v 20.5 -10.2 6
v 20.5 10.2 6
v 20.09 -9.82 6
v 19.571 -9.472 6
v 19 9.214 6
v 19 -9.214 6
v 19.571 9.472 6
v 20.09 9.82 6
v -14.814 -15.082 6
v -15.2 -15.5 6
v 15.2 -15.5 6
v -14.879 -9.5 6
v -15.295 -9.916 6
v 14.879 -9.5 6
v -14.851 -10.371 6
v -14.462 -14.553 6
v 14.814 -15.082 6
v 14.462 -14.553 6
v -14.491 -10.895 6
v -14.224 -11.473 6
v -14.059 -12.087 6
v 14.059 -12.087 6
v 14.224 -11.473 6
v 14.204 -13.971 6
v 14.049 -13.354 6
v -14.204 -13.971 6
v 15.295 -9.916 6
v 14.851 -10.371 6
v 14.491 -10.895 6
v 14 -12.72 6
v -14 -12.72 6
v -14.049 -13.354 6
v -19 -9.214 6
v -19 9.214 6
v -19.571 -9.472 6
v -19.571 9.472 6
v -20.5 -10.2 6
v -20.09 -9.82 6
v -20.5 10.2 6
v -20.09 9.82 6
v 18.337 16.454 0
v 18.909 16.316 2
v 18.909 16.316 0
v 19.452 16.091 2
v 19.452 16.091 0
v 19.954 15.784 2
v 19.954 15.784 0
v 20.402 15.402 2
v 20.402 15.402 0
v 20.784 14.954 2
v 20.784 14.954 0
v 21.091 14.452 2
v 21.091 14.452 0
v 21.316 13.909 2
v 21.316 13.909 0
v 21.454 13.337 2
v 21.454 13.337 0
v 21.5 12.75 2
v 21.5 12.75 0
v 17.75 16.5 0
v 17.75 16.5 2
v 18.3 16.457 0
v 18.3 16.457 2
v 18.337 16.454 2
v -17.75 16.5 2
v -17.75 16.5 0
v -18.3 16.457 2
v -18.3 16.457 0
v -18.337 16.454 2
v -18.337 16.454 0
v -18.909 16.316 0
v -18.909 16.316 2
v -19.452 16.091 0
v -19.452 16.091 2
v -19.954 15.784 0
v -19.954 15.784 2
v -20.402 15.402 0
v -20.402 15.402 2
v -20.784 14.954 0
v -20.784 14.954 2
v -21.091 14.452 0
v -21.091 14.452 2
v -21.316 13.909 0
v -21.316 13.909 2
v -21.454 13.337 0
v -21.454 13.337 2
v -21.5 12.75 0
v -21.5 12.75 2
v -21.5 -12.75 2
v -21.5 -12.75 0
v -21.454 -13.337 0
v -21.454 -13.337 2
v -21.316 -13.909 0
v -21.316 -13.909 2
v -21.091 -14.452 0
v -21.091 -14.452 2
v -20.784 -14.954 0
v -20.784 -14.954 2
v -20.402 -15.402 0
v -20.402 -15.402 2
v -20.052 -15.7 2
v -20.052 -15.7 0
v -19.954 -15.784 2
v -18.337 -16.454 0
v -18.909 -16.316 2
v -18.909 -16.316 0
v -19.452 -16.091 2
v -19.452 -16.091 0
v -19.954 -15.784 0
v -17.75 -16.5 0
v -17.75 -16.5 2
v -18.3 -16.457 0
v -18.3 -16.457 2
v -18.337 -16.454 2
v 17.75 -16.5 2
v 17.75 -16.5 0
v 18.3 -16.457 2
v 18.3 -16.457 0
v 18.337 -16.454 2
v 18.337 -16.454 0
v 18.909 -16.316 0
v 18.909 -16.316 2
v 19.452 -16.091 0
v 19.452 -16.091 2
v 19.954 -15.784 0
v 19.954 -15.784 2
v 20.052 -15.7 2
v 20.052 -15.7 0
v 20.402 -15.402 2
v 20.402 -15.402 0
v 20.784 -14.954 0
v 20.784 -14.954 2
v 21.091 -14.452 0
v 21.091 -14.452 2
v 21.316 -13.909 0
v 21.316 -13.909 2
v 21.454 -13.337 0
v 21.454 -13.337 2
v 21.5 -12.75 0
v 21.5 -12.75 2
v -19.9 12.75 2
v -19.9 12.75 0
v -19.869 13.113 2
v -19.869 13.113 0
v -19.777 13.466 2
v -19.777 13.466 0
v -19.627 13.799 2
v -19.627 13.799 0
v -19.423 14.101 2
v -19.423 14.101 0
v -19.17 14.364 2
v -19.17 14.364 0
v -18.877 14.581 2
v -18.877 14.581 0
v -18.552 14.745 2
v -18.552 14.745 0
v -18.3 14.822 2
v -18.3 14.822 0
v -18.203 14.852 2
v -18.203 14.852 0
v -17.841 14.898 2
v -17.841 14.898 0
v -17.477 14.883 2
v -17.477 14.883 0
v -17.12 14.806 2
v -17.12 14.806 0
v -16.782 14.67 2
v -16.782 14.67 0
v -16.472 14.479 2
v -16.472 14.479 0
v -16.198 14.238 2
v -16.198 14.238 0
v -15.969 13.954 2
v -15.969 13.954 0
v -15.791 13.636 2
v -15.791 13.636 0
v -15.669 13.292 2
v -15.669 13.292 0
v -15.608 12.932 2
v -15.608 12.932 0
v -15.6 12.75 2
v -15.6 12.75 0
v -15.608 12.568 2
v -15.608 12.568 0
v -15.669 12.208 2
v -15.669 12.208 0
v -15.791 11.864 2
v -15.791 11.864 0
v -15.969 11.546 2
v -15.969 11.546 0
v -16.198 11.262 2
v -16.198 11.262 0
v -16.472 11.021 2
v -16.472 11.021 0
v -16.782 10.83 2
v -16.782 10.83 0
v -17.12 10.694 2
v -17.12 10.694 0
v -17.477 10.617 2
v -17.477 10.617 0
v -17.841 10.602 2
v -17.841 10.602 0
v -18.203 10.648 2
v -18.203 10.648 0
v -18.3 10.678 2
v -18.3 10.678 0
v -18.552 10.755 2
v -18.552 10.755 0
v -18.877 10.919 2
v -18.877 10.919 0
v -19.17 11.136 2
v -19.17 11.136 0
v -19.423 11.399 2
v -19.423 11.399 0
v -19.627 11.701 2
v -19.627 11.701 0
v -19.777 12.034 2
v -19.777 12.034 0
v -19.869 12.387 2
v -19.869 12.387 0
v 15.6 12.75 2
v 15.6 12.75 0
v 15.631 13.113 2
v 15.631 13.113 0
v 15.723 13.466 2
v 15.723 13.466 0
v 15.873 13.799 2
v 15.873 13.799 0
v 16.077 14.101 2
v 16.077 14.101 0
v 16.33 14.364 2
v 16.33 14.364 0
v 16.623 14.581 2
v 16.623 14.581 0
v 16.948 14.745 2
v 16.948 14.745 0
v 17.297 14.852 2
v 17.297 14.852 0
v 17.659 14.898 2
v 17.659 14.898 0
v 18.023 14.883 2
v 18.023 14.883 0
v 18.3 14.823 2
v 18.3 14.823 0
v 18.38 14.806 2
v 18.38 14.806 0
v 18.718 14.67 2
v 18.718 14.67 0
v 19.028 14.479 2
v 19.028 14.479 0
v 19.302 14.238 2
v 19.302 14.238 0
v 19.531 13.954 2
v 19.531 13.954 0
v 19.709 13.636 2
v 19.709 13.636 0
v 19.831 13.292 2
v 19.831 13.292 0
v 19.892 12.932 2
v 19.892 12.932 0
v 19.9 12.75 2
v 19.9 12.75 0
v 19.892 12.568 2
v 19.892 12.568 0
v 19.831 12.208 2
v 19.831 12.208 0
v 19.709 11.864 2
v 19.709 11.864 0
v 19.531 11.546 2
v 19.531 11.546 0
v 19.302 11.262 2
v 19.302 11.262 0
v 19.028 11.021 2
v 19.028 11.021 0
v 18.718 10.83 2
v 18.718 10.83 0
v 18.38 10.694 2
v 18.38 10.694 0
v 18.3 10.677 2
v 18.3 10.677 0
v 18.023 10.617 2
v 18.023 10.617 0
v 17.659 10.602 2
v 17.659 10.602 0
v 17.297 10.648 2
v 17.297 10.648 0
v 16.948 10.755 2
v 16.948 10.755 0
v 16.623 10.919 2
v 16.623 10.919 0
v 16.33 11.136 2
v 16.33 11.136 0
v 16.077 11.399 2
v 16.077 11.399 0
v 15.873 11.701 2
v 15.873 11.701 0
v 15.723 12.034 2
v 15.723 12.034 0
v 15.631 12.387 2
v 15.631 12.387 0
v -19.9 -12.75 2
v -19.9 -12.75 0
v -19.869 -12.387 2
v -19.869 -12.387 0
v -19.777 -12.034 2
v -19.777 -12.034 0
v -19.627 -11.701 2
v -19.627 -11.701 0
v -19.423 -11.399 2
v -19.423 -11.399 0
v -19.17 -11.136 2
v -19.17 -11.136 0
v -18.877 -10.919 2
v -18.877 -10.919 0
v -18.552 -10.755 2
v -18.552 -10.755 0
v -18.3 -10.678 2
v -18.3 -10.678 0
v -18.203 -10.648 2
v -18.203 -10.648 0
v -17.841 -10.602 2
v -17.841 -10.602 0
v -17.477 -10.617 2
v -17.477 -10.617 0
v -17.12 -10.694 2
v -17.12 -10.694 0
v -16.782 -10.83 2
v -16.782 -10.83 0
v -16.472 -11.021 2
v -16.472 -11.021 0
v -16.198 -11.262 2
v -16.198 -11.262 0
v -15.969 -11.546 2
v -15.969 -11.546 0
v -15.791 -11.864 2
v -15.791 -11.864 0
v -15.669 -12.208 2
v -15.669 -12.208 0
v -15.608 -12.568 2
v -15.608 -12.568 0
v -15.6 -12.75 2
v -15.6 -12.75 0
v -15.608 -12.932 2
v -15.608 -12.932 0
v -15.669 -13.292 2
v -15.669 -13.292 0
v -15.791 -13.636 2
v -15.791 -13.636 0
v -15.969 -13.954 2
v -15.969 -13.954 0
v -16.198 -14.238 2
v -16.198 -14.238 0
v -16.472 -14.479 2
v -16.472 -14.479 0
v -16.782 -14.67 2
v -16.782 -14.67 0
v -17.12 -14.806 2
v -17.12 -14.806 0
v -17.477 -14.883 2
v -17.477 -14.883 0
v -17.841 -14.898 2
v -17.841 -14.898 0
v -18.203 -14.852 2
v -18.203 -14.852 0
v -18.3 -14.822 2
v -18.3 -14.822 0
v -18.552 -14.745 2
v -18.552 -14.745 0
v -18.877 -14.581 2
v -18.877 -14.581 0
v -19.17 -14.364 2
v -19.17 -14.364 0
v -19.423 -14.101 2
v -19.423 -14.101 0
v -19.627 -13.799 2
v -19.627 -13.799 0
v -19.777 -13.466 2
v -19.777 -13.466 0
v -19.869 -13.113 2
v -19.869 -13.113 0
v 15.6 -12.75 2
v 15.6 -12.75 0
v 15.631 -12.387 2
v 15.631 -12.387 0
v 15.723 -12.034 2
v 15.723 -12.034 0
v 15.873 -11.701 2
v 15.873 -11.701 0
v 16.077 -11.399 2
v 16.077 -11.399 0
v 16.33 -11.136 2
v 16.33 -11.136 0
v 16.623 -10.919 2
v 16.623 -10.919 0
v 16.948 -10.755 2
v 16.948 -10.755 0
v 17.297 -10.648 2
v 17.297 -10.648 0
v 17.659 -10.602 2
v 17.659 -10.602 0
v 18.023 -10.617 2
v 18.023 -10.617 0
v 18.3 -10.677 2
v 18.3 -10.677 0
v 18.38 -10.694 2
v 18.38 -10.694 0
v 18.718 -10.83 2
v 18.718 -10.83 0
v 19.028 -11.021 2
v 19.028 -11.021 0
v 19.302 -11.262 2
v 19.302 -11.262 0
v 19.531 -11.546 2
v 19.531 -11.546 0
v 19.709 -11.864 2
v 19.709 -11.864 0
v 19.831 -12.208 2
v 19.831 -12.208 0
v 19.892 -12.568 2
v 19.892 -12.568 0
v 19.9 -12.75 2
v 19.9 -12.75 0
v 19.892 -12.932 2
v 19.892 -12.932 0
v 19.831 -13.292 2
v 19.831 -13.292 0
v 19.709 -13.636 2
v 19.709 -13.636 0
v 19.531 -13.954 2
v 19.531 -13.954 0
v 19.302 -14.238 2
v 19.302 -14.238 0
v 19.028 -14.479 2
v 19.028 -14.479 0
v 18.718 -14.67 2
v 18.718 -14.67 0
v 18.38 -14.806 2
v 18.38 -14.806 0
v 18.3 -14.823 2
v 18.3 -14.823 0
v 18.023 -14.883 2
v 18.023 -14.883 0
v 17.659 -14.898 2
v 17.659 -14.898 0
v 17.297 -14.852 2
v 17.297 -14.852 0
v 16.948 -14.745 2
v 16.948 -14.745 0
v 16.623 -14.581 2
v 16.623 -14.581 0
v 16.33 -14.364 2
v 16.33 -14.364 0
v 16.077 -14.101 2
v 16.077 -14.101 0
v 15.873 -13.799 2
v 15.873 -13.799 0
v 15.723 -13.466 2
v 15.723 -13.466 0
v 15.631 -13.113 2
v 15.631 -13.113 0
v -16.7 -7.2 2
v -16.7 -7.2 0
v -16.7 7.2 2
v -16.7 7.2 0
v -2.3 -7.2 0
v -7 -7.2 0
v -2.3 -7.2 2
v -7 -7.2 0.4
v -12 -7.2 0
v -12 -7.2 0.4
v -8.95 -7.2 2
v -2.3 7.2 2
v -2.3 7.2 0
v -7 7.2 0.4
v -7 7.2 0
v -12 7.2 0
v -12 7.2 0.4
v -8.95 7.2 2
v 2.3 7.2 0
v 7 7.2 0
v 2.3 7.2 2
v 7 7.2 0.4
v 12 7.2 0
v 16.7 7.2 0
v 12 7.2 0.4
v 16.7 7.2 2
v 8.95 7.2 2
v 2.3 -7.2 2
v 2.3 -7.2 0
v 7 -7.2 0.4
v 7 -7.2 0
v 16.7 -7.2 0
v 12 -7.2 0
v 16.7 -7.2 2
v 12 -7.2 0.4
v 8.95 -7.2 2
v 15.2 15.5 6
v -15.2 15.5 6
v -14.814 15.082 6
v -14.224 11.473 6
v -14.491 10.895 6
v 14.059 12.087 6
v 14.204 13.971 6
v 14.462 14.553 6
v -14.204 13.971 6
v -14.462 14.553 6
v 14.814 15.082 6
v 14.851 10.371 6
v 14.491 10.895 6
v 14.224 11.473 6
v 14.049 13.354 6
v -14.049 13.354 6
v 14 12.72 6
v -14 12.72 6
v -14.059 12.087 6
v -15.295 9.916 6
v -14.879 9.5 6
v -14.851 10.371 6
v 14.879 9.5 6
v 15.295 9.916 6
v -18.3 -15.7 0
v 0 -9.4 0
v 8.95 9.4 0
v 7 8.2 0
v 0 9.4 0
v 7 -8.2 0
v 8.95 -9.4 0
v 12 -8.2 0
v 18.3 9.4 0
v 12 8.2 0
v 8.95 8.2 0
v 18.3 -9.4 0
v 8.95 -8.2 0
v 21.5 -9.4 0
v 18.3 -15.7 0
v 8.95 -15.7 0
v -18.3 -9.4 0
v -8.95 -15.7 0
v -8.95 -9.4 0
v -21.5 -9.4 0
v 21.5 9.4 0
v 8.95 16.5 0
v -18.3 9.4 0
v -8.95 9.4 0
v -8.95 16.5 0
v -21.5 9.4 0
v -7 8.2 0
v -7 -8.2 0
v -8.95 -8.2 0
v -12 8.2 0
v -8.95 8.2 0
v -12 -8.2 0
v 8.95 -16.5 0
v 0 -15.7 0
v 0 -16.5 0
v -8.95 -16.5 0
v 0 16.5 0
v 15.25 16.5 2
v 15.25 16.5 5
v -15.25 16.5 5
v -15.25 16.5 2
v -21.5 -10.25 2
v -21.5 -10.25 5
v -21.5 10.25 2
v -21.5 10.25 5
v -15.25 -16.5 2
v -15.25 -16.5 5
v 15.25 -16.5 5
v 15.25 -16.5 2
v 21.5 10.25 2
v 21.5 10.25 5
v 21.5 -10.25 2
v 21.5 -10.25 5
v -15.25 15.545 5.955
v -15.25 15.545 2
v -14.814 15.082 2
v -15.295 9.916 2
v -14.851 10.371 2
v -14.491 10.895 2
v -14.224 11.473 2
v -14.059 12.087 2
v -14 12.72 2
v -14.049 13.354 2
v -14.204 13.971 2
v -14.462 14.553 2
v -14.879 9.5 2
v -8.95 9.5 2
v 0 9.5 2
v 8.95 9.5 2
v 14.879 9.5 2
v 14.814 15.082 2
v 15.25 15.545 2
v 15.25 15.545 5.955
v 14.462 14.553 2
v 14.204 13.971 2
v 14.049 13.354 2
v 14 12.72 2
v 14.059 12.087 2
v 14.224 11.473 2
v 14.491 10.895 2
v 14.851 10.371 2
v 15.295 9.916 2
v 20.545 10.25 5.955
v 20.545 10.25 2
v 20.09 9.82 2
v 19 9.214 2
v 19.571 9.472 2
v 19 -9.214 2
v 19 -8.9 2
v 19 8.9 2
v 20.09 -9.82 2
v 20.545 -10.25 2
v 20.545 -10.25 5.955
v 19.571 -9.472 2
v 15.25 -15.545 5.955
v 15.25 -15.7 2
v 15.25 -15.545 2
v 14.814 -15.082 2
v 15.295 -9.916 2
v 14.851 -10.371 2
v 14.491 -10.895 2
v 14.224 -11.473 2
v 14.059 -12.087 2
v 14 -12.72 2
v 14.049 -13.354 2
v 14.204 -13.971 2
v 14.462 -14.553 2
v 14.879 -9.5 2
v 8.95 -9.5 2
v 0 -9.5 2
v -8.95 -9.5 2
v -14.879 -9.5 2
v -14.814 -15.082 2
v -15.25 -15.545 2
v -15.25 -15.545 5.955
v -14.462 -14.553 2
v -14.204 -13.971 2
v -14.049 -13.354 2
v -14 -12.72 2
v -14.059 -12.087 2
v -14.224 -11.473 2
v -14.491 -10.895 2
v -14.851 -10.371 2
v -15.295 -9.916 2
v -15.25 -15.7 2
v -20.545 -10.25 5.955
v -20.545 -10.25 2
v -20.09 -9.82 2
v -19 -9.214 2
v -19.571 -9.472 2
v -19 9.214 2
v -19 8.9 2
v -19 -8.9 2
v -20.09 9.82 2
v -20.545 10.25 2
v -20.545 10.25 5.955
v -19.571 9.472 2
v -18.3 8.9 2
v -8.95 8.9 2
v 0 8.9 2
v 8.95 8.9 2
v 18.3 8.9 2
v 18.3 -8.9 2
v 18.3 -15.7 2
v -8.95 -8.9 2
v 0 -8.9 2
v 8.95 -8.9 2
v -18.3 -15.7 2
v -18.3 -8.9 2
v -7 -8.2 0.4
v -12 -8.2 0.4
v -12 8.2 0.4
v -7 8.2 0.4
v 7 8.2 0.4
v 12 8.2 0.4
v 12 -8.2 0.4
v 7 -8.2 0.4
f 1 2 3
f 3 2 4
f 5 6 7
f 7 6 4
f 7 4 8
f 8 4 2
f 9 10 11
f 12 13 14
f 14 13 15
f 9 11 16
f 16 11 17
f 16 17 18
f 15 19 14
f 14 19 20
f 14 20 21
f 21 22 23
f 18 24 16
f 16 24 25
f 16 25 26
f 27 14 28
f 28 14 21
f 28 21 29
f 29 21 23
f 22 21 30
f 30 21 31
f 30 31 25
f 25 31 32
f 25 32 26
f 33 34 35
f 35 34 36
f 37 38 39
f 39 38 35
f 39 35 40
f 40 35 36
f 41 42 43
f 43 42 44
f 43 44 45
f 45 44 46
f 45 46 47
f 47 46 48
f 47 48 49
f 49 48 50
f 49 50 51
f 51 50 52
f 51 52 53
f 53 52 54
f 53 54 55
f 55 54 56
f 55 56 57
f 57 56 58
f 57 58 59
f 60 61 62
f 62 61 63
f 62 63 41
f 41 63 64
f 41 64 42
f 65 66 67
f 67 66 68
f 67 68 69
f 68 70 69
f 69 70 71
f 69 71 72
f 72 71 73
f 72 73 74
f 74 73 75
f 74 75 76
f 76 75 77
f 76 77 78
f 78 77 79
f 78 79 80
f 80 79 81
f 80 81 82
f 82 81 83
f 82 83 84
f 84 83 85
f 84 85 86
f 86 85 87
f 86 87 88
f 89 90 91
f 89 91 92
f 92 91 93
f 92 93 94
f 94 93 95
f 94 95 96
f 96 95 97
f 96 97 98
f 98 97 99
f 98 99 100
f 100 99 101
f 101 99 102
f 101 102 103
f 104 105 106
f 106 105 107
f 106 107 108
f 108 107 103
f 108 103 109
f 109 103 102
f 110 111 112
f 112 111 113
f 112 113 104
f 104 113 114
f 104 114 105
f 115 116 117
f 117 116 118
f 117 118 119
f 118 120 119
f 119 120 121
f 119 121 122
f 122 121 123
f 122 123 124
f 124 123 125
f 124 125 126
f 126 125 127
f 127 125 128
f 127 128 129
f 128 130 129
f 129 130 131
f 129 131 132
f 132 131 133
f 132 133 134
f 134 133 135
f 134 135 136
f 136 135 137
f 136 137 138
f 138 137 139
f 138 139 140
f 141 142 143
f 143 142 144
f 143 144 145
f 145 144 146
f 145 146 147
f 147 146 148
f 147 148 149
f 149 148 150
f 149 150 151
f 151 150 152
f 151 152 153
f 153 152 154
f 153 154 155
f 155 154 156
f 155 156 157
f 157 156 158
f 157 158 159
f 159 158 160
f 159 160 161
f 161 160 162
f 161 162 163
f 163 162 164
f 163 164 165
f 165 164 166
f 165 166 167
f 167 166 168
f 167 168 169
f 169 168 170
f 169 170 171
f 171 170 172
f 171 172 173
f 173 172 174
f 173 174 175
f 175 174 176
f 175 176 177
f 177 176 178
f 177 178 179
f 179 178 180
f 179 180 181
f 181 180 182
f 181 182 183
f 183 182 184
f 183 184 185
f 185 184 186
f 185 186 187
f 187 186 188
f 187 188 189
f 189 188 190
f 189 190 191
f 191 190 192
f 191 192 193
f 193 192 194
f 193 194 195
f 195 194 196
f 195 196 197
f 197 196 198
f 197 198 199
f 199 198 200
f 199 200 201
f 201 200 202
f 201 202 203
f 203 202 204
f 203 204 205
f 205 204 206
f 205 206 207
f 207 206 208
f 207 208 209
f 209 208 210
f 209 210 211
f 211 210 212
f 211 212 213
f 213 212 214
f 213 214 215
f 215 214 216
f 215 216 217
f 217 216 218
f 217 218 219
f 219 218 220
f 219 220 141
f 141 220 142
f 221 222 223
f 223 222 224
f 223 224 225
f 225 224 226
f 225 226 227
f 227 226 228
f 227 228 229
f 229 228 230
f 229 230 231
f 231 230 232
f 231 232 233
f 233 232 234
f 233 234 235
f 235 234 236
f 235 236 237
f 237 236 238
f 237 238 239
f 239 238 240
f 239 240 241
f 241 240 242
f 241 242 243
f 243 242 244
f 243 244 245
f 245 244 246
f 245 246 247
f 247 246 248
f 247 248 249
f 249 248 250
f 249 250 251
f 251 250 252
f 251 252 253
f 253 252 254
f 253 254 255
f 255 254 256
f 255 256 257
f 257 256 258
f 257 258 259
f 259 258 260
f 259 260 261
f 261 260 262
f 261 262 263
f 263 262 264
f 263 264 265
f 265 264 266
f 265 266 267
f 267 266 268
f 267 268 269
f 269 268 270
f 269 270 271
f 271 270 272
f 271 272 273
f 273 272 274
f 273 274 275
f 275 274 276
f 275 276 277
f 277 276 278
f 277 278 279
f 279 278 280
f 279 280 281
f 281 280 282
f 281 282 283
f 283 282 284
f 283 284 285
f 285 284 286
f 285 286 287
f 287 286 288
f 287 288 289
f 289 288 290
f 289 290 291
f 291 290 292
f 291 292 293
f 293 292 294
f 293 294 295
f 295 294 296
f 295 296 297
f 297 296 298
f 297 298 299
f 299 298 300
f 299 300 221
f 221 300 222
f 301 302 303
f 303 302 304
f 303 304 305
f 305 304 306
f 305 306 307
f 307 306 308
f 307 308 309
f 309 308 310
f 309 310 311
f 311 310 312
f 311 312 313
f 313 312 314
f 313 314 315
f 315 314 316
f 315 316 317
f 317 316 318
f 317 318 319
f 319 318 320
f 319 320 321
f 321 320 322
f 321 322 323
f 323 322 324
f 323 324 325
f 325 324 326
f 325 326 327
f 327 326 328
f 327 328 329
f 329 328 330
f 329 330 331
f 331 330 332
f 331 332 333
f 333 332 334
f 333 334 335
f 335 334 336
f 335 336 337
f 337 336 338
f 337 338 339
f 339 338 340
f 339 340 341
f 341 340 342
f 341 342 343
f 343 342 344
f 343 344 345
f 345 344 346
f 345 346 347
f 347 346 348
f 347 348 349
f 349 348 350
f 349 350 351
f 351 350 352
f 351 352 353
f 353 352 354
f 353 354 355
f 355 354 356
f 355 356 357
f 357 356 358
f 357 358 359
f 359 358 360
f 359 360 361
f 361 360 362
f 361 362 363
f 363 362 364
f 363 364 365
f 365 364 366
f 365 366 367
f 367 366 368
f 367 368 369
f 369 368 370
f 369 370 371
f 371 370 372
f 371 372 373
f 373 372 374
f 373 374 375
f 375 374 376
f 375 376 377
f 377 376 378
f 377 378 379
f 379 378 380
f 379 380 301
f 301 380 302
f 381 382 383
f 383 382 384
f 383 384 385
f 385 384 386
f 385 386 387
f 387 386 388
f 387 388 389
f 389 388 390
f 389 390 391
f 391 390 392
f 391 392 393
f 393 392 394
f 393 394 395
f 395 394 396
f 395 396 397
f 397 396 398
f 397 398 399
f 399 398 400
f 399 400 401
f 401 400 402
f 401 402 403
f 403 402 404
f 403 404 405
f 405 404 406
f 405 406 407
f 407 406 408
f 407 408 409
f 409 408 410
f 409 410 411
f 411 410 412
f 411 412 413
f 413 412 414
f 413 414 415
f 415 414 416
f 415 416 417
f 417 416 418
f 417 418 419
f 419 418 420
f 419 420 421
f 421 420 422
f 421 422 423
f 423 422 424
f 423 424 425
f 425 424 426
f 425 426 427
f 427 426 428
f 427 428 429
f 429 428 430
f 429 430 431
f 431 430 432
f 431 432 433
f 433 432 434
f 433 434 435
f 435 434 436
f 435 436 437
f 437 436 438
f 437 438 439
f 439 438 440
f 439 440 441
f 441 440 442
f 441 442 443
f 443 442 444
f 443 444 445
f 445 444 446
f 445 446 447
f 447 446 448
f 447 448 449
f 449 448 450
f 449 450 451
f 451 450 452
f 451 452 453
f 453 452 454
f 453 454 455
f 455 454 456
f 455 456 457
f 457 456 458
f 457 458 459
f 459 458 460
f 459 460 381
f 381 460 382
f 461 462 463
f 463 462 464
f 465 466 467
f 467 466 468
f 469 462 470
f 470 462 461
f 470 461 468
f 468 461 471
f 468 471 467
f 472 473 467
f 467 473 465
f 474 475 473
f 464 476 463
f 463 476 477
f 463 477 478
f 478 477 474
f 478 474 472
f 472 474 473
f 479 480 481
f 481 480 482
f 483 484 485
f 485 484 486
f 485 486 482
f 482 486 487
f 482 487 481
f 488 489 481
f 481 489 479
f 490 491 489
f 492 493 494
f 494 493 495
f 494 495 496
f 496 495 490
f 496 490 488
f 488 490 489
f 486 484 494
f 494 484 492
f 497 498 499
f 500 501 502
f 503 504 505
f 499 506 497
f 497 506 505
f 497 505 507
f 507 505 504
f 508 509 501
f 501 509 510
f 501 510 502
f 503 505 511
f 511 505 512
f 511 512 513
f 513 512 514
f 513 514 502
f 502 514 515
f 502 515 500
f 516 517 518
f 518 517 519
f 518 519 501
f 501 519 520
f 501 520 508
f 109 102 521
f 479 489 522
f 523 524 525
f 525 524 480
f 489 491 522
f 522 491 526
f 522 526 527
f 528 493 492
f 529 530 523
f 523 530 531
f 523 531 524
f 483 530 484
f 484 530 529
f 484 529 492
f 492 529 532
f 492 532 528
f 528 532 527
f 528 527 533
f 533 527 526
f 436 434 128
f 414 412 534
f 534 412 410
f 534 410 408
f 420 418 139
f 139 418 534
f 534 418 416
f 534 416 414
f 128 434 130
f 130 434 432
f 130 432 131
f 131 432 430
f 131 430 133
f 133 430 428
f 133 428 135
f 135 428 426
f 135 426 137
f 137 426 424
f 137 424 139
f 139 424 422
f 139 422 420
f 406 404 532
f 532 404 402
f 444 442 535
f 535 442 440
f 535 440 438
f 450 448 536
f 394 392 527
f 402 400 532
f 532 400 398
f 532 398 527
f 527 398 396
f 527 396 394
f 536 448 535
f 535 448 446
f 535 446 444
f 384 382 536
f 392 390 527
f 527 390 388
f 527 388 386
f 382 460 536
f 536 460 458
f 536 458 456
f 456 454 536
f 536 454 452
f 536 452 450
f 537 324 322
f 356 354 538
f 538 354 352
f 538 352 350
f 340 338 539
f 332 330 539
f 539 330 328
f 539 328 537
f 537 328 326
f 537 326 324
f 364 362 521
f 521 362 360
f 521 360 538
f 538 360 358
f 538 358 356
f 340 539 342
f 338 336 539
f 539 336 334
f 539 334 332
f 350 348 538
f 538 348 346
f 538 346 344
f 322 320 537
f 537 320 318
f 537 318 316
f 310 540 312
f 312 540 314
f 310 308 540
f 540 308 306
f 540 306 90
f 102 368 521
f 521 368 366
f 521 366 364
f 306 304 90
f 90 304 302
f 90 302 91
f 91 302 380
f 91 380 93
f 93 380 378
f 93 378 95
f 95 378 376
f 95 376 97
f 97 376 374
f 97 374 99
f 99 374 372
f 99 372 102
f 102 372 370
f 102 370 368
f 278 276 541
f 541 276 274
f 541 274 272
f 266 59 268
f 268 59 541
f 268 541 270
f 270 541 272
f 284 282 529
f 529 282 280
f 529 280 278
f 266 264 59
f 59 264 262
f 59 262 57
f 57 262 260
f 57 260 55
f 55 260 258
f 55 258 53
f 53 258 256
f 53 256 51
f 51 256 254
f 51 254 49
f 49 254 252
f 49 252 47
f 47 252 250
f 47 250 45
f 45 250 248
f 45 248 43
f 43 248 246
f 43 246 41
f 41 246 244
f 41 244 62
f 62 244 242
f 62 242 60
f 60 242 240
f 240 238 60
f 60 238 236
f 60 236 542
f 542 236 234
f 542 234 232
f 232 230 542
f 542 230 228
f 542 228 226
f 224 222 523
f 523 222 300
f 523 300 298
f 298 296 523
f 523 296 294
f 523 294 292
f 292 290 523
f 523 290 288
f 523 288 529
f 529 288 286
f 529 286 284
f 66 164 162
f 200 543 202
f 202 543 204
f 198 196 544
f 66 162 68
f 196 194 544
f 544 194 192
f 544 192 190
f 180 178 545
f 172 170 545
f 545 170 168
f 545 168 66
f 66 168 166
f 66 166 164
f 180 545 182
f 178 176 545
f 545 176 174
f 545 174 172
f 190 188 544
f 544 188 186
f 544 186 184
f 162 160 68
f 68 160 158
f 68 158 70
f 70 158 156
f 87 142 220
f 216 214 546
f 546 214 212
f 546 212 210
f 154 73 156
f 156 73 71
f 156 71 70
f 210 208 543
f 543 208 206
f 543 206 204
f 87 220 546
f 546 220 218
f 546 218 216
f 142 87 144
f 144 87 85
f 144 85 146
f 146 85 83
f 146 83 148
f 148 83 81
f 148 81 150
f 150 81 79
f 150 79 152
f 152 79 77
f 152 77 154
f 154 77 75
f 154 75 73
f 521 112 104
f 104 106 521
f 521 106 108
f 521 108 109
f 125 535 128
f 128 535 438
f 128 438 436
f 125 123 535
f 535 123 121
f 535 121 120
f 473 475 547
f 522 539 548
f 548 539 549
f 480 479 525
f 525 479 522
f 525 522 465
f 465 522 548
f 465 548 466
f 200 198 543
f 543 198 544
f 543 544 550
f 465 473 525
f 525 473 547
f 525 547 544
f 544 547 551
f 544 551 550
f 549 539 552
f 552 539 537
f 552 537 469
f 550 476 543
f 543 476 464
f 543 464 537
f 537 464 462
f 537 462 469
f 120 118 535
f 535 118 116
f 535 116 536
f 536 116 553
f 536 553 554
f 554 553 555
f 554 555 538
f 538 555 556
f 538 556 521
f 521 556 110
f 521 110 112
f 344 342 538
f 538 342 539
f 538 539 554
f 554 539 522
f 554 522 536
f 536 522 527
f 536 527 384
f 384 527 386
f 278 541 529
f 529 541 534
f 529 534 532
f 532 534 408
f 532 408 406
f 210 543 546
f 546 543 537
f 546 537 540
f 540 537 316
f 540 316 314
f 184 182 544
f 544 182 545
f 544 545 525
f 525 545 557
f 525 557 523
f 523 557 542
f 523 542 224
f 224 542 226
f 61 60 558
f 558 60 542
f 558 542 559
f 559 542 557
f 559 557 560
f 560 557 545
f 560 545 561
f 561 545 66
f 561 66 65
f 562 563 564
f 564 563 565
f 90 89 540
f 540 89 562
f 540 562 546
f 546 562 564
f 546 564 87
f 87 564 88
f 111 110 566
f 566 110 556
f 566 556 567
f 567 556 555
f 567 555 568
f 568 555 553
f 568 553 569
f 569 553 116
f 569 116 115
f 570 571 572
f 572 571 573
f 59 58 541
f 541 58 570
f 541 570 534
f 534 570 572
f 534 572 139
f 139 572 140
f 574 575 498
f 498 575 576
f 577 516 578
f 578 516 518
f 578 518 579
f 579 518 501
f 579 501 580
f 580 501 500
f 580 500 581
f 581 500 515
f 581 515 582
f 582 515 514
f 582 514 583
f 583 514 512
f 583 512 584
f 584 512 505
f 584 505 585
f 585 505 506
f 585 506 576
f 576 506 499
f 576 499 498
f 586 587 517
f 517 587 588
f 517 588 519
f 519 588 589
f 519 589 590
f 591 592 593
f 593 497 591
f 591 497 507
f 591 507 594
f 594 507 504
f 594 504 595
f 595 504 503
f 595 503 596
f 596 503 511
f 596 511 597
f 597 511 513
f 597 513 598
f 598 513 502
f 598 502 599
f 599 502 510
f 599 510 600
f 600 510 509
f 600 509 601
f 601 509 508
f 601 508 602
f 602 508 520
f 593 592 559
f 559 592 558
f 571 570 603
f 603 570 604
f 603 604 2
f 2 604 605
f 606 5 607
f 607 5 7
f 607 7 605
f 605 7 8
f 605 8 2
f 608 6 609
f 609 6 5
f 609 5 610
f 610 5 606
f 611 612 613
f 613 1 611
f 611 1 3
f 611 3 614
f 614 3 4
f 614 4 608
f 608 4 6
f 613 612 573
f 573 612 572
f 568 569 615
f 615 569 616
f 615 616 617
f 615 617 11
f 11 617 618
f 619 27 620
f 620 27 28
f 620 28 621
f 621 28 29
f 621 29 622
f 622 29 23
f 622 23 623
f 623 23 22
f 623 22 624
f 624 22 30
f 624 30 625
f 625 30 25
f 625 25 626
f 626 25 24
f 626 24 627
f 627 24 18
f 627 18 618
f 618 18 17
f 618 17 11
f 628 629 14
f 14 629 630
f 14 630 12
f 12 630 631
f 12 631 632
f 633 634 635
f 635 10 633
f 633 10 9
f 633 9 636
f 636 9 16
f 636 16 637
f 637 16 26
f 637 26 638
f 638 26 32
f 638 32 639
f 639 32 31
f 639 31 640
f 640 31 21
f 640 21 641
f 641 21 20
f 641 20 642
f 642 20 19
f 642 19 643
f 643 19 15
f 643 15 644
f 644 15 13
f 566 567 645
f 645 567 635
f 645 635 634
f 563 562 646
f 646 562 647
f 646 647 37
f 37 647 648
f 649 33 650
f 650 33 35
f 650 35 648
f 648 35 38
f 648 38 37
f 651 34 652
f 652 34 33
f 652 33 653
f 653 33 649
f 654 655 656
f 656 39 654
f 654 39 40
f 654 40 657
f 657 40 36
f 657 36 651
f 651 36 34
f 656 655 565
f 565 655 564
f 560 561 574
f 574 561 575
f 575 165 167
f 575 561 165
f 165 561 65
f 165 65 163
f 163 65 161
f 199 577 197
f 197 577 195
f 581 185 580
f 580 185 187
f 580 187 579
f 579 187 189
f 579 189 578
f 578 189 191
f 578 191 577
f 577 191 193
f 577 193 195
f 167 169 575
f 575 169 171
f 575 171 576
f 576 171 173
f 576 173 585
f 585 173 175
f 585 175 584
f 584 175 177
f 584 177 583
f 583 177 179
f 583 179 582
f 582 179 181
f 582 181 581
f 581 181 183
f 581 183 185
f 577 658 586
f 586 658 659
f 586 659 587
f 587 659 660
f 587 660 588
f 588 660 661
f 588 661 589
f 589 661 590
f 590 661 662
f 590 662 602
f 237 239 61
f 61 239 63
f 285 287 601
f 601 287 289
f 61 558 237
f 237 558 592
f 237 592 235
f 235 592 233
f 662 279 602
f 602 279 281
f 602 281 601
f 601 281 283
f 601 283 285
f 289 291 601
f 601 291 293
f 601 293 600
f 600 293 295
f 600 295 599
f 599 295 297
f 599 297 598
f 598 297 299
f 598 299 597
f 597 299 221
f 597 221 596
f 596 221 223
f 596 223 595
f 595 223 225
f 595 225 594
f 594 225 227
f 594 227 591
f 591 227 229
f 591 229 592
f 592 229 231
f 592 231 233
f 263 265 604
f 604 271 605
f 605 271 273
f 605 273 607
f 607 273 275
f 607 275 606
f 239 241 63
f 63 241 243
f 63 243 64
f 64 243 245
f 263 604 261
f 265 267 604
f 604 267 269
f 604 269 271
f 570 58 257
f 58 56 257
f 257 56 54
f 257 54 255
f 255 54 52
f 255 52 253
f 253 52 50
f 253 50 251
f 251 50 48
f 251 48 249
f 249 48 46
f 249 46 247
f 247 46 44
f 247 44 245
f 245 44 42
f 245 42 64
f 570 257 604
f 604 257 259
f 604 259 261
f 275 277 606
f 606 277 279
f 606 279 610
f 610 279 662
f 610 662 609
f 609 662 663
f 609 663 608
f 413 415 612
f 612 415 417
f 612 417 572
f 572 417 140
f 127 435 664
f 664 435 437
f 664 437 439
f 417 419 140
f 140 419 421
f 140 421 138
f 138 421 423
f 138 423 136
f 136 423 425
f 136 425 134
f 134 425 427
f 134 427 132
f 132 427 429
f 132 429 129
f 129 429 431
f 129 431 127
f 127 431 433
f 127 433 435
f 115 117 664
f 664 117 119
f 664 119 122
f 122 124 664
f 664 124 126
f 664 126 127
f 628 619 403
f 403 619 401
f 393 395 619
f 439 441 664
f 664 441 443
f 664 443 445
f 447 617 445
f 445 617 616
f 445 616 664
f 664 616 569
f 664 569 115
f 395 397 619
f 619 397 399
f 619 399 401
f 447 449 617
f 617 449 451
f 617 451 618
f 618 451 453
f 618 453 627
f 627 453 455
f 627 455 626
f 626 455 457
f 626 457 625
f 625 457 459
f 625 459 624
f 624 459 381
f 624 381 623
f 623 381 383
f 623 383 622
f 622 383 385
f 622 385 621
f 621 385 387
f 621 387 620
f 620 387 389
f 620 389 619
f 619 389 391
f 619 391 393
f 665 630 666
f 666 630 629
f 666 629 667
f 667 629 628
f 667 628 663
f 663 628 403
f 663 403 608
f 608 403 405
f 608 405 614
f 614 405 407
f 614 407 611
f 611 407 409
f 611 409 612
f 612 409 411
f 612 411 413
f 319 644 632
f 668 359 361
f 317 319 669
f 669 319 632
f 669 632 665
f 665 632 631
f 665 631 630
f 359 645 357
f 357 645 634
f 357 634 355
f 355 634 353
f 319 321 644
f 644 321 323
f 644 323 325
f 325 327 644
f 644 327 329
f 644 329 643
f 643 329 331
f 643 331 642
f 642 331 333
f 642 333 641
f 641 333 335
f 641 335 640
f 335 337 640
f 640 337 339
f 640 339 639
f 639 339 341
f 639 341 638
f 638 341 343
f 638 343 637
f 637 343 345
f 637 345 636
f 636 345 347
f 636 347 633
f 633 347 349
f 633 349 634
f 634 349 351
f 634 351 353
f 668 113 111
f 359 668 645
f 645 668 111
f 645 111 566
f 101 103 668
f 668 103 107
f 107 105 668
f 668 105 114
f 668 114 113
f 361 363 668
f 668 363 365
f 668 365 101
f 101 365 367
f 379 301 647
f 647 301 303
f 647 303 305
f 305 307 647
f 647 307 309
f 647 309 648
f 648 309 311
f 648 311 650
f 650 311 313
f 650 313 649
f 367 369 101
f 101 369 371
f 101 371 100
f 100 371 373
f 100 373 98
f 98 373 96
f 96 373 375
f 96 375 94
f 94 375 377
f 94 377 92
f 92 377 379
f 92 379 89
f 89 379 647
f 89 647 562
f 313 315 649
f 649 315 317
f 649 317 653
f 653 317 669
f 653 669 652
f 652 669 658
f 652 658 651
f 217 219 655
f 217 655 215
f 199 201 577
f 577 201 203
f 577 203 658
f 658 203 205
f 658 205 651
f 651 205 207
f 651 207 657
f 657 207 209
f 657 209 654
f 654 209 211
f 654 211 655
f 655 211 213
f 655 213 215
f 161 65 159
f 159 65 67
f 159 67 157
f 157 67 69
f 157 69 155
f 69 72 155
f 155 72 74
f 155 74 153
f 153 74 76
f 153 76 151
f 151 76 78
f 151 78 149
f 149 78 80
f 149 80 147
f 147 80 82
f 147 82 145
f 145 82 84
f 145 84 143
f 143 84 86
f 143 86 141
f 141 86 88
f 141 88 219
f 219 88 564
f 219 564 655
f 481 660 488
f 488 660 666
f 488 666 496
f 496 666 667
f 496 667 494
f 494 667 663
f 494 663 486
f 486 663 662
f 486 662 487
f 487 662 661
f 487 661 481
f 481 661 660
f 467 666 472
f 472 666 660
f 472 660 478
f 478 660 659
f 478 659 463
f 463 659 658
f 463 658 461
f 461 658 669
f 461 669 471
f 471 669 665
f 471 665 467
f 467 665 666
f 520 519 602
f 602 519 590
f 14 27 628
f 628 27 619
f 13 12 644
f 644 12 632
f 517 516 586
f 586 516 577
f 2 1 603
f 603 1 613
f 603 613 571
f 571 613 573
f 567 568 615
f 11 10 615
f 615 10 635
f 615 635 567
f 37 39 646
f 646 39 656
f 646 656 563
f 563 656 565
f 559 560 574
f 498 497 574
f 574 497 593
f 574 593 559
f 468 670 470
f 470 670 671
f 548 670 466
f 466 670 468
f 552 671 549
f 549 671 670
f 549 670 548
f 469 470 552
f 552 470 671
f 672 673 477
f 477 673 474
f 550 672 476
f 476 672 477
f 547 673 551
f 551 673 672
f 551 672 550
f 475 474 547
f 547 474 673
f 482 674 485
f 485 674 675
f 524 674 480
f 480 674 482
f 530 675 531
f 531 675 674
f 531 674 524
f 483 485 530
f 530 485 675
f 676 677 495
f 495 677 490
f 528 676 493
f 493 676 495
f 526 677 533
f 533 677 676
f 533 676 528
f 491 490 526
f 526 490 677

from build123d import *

# Parameters (mm, degrees)
SKETCH_1_R          = 2.15
SKETCH_1_W          = 14.4
SKETCH_1_H          = 14.4
EXTRUDE_1_DEPTH     = 6
CUT_EXTRUDE_START   = -4
CUT_EXTRUDE_1_DEPTH = 4
CHAMFER_1_SIZE      = 1
SKETCH_4_W          = 5
SKETCH_4_H          = 1
CUT_EXTRUDE_2_DEPTH = 0.4


with BuildPart() as part:
    # Эскиз1 → Бобышка-Вытянуть1 (new body)
    with BuildSketch(Plane.XY):
        with BuildLine():
            Line((17.75, 16.5), (-17.75, 16.5))
            ThreePointArc((-17.75, 16.5), (-20.401650429, 15.401650429), (-21.5, 12.75))
            Line((-21.5, 12.75), (-21.5, -12.75))
            ThreePointArc((-21.5, -12.75), (-20.401650429, -15.401650429), (-17.75, -16.5))
            Line((-17.75, -16.5), (17.75, -16.5))
            ThreePointArc((17.75, -16.5), (20.401650429, -15.401650429), (21.5, -12.75))
            Line((21.5, -12.75), (21.5, 12.75))
            ThreePointArc((21.5, 12.75), (20.401650429, 15.401650429), (17.75, 16.5))
        make_face()
        with Locations((-17.75, 12.75)):
            Circle(SKETCH_1_R, mode=Mode.SUBTRACT)
        with Locations((17.75, 12.75)):
            Circle(SKETCH_1_R, mode=Mode.SUBTRACT)
        with Locations((-17.75, -12.75)):
            Circle(SKETCH_1_R, mode=Mode.SUBTRACT)
        with Locations((17.75, -12.75)):
            Circle(SKETCH_1_R, mode=Mode.SUBTRACT)
        with Locations((-9.5, 0)):
            Rectangle(SKETCH_1_W, SKETCH_1_H, mode=Mode.SUBTRACT)
        with Locations((9.5, 0)):
            Rectangle(SKETCH_1_W, SKETCH_1_H, mode=Mode.SUBTRACT)
    extrude(amount=EXTRUDE_1_DEPTH)

    # Эскиз2 → Вырез-Вытянуть1 (cut)
    with BuildSketch(Plane.XY.offset(6).offset(CUT_EXTRUDE_START)):
        with BuildLine():
            Line((-21.5, 10.25), (-20.545084972, 10.25))
            ThreePointArc((-20.545084972, 10.25), (-19.837764528, 9.634917453), (-19, 9.214466094))
            Line((-19, 9.214466094), (-19, -9.214466094))
            ThreePointArc((-19, -9.214466094), (-19.837764528, -9.634917453), (-20.545084972, -10.25))
            Line((-20.545084972, -10.25), (-21.5, -10.25))
            Line((-21.5, -10.25), (-21.5, -12.75))
            ThreePointArc((-21.5, -12.75), (-20.401650429, -15.401650429), (-17.75, -16.5))
            Line((-17.75, -16.5), (-15.25, -16.5))
            Line((-15.25, -16.5), (-15.25, -15.545084972))
            ThreePointArc((-15.25, -15.545084972), (-14.020147597, -12.361797664), (-15.879171307, -9.5))
            Line((-15.879171307, -9.5), (15.879171307, -9.5))
            ThreePointArc((15.879171307, -9.5), (14.020147597, -12.361797664), (15.25, -15.545084972))
            Line((15.25, -15.545084972), (15.25, -16.5))
            Line((15.25, -16.5), (17.75, -16.5))
            ThreePointArc((17.75, -16.5), (20.401650429, -15.401650429), (21.5, -12.75))
            Line((21.5, -12.75), (21.5, -10.25))
            Line((21.5, -10.25), (20.545084972, -10.25))
            ThreePointArc((20.545084972, -10.25), (19.837764528, -9.634917453), (19, -9.214466094))
            Line((19, -9.214466094), (19, 9.214466094))
            ThreePointArc((19, 9.214466094), (19.837764528, 9.634917453), (20.545084972, 10.25))
            Line((20.545084972, 10.25), (21.5, 10.25))
            Line((21.5, 10.25), (21.5, 12.75))
            ThreePointArc((21.5, 12.75), (20.401650429, 15.401650429), (17.75, 16.5))
            Line((17.75, 16.5), (15.25, 16.5))
            Line((15.25, 16.5), (15.25, 15.545084972))
            ThreePointArc((15.25, 15.545084972), (14.020147597, 12.361797664), (15.879171307, 9.5))
            Line((15.879171307, 9.5), (-15.879171307, 9.5))
            ThreePointArc((-15.879171307, 9.5), (-14.020147597, 12.361797664), (-15.25, 15.545084972))
            Line((-15.25, 15.545084972), (-15.25, 16.5))
            Line((-15.25, 16.5), (-17.75, 16.5))
            ThreePointArc((-17.75, 16.5), (-20.401650429, 15.401650429), (-21.5, 12.75))
            Line((-21.5, 12.75), (-21.5, 10.25))
        make_face()
    extrude(amount=CUT_EXTRUDE_1_DEPTH, mode=Mode.SUBTRACT)

    # Фаска1
    # the kernel refuses this chamfer: 1, 0.732303349 mm, written as the material it takes off along each edge
    with BuildSketch(Plane(origin=(15.879171307, 9.5, 2), x_dir=(-0.8149940779202551, 0.5794692856009827, 0), z_dir=(0, 0, 1))) as chamfer_1_piece_1:
        with BuildLine():
            Line((0.717121745, 0), (CHAMFER_1_SIZE * 0.81499407792, CHAMFER_1_SIZE * 0.579469285601))
            Line((CHAMFER_1_SIZE * 0.81499407792, CHAMFER_1_SIZE * 0.579469285601), (0, 0))
            ThreePointArc((0, 0), (0.355196947, 0.017179972), (0.717121745, 0))
        make_face()
    extrude(amount=6.571682988, mode=Mode.SUBTRACT)
    with BuildSketch(Plane(origin=(-15.879171307, 9.5, 2), x_dir=(1, 0, 0), z_dir=(0, 0, 1))) as chamfer_1_piece_2:
        with BuildLine():
            Line((CHAMFER_1_SIZE, 0), (0.584449975, 0.415550025))
            ThreePointArc((0.584449975, 0.415550025), (0.299438674, 0.191824146), (0, 0))
            Line((0, 0), (CHAMFER_1_SIZE, 0))
        make_face()
    extrude(amount=6.571682988, mode=Mode.SUBTRACT)
    with BuildSketch(Plane(origin=(15.879171307, -9.5, 2), x_dir=(-0.8149940779202558, -0.5794692856009814, 0), z_dir=(0, 0, 1))) as chamfer_1_piece_3:
        with BuildLine():
            Line((0.717121745, 0), (CHAMFER_1_SIZE * 0.81499407792, -CHAMFER_1_SIZE * 0.579469285601))
            Line((CHAMFER_1_SIZE * 0.81499407792, -CHAMFER_1_SIZE * 0.579469285601), (0, 0))
            ThreePointArc((0, 0), (0.355196947, -0.017179972), (0.717121745, 0))
        make_face()
    extrude(amount=6.571682988, mode=Mode.SUBTRACT)
    with BuildSketch(Plane(origin=(-15.879171307, -9.5, 2), x_dir=(1, 0, 0), z_dir=(0, 0, 1))) as chamfer_1_piece_4:
        with BuildLine():
            Line((CHAMFER_1_SIZE, 0), (0.584449975, -0.415550025))
            ThreePointArc((0.584449975, -0.415550025), (0.299438674, -0.191824146), (0, 0))
            Line((0, 0), (CHAMFER_1_SIZE, 0))
        make_face()
    extrude(amount=6.571682988, mode=Mode.SUBTRACT)
    with BuildSketch(Plane(origin=(21.5, -12.821682988, 6), x_dir=(0, 0, -1), z_dir=(0, 1, 0)), Plane(origin=(-21.5, 12.821682988, 6), x_dir=(0, 0, -1), z_dir=(0, -1, 0))) as chamfer_1_piece_5:
        Polygon((CHAMFER_1_SIZE, 0), (0, CHAMFER_1_SIZE), (0, 0), align=None)
    extrude(amount=25.643365976, mode=Mode.SUBTRACT)
    with BuildSketch(Plane(origin=(-17.821682988, -16.5, 6), x_dir=(0, 0, -1), z_dir=(1, 0, 0)), Plane(origin=(17.821682988, 16.5, 6), x_dir=(0, 0, -1), z_dir=(-1, 0, 0))) as chamfer_1_piece_6:
        Polygon((CHAMFER_1_SIZE, 0), (0, CHAMFER_1_SIZE), (0, 0), align=None)
    extrude(amount=35.643365976, mode=Mode.SUBTRACT)

    # Эскиз4 → Вырез-Вытянуть2 (cut)
    with BuildSketch(Plane(origin=(0, 0, 0), x_dir=(-1, 0, 0), z_dir=(0, 0, -1))):
        with Locations((9.5, -7.7)):
            Rectangle(SKETCH_4_W, SKETCH_4_H)
        with Locations((9.5, 7.7)):
            Rectangle(SKETCH_4_W, SKETCH_4_H)
        with Locations((-9.5, 7.7)):
            Rectangle(SKETCH_4_W, SKETCH_4_H)
        with Locations((-9.5, -7.7)):
            Rectangle(SKETCH_4_W, SKETCH_4_H)
    extrude(amount=-CUT_EXTRUDE_2_DEPTH, mode=Mode.SUBTRACT)


solid = part.part
